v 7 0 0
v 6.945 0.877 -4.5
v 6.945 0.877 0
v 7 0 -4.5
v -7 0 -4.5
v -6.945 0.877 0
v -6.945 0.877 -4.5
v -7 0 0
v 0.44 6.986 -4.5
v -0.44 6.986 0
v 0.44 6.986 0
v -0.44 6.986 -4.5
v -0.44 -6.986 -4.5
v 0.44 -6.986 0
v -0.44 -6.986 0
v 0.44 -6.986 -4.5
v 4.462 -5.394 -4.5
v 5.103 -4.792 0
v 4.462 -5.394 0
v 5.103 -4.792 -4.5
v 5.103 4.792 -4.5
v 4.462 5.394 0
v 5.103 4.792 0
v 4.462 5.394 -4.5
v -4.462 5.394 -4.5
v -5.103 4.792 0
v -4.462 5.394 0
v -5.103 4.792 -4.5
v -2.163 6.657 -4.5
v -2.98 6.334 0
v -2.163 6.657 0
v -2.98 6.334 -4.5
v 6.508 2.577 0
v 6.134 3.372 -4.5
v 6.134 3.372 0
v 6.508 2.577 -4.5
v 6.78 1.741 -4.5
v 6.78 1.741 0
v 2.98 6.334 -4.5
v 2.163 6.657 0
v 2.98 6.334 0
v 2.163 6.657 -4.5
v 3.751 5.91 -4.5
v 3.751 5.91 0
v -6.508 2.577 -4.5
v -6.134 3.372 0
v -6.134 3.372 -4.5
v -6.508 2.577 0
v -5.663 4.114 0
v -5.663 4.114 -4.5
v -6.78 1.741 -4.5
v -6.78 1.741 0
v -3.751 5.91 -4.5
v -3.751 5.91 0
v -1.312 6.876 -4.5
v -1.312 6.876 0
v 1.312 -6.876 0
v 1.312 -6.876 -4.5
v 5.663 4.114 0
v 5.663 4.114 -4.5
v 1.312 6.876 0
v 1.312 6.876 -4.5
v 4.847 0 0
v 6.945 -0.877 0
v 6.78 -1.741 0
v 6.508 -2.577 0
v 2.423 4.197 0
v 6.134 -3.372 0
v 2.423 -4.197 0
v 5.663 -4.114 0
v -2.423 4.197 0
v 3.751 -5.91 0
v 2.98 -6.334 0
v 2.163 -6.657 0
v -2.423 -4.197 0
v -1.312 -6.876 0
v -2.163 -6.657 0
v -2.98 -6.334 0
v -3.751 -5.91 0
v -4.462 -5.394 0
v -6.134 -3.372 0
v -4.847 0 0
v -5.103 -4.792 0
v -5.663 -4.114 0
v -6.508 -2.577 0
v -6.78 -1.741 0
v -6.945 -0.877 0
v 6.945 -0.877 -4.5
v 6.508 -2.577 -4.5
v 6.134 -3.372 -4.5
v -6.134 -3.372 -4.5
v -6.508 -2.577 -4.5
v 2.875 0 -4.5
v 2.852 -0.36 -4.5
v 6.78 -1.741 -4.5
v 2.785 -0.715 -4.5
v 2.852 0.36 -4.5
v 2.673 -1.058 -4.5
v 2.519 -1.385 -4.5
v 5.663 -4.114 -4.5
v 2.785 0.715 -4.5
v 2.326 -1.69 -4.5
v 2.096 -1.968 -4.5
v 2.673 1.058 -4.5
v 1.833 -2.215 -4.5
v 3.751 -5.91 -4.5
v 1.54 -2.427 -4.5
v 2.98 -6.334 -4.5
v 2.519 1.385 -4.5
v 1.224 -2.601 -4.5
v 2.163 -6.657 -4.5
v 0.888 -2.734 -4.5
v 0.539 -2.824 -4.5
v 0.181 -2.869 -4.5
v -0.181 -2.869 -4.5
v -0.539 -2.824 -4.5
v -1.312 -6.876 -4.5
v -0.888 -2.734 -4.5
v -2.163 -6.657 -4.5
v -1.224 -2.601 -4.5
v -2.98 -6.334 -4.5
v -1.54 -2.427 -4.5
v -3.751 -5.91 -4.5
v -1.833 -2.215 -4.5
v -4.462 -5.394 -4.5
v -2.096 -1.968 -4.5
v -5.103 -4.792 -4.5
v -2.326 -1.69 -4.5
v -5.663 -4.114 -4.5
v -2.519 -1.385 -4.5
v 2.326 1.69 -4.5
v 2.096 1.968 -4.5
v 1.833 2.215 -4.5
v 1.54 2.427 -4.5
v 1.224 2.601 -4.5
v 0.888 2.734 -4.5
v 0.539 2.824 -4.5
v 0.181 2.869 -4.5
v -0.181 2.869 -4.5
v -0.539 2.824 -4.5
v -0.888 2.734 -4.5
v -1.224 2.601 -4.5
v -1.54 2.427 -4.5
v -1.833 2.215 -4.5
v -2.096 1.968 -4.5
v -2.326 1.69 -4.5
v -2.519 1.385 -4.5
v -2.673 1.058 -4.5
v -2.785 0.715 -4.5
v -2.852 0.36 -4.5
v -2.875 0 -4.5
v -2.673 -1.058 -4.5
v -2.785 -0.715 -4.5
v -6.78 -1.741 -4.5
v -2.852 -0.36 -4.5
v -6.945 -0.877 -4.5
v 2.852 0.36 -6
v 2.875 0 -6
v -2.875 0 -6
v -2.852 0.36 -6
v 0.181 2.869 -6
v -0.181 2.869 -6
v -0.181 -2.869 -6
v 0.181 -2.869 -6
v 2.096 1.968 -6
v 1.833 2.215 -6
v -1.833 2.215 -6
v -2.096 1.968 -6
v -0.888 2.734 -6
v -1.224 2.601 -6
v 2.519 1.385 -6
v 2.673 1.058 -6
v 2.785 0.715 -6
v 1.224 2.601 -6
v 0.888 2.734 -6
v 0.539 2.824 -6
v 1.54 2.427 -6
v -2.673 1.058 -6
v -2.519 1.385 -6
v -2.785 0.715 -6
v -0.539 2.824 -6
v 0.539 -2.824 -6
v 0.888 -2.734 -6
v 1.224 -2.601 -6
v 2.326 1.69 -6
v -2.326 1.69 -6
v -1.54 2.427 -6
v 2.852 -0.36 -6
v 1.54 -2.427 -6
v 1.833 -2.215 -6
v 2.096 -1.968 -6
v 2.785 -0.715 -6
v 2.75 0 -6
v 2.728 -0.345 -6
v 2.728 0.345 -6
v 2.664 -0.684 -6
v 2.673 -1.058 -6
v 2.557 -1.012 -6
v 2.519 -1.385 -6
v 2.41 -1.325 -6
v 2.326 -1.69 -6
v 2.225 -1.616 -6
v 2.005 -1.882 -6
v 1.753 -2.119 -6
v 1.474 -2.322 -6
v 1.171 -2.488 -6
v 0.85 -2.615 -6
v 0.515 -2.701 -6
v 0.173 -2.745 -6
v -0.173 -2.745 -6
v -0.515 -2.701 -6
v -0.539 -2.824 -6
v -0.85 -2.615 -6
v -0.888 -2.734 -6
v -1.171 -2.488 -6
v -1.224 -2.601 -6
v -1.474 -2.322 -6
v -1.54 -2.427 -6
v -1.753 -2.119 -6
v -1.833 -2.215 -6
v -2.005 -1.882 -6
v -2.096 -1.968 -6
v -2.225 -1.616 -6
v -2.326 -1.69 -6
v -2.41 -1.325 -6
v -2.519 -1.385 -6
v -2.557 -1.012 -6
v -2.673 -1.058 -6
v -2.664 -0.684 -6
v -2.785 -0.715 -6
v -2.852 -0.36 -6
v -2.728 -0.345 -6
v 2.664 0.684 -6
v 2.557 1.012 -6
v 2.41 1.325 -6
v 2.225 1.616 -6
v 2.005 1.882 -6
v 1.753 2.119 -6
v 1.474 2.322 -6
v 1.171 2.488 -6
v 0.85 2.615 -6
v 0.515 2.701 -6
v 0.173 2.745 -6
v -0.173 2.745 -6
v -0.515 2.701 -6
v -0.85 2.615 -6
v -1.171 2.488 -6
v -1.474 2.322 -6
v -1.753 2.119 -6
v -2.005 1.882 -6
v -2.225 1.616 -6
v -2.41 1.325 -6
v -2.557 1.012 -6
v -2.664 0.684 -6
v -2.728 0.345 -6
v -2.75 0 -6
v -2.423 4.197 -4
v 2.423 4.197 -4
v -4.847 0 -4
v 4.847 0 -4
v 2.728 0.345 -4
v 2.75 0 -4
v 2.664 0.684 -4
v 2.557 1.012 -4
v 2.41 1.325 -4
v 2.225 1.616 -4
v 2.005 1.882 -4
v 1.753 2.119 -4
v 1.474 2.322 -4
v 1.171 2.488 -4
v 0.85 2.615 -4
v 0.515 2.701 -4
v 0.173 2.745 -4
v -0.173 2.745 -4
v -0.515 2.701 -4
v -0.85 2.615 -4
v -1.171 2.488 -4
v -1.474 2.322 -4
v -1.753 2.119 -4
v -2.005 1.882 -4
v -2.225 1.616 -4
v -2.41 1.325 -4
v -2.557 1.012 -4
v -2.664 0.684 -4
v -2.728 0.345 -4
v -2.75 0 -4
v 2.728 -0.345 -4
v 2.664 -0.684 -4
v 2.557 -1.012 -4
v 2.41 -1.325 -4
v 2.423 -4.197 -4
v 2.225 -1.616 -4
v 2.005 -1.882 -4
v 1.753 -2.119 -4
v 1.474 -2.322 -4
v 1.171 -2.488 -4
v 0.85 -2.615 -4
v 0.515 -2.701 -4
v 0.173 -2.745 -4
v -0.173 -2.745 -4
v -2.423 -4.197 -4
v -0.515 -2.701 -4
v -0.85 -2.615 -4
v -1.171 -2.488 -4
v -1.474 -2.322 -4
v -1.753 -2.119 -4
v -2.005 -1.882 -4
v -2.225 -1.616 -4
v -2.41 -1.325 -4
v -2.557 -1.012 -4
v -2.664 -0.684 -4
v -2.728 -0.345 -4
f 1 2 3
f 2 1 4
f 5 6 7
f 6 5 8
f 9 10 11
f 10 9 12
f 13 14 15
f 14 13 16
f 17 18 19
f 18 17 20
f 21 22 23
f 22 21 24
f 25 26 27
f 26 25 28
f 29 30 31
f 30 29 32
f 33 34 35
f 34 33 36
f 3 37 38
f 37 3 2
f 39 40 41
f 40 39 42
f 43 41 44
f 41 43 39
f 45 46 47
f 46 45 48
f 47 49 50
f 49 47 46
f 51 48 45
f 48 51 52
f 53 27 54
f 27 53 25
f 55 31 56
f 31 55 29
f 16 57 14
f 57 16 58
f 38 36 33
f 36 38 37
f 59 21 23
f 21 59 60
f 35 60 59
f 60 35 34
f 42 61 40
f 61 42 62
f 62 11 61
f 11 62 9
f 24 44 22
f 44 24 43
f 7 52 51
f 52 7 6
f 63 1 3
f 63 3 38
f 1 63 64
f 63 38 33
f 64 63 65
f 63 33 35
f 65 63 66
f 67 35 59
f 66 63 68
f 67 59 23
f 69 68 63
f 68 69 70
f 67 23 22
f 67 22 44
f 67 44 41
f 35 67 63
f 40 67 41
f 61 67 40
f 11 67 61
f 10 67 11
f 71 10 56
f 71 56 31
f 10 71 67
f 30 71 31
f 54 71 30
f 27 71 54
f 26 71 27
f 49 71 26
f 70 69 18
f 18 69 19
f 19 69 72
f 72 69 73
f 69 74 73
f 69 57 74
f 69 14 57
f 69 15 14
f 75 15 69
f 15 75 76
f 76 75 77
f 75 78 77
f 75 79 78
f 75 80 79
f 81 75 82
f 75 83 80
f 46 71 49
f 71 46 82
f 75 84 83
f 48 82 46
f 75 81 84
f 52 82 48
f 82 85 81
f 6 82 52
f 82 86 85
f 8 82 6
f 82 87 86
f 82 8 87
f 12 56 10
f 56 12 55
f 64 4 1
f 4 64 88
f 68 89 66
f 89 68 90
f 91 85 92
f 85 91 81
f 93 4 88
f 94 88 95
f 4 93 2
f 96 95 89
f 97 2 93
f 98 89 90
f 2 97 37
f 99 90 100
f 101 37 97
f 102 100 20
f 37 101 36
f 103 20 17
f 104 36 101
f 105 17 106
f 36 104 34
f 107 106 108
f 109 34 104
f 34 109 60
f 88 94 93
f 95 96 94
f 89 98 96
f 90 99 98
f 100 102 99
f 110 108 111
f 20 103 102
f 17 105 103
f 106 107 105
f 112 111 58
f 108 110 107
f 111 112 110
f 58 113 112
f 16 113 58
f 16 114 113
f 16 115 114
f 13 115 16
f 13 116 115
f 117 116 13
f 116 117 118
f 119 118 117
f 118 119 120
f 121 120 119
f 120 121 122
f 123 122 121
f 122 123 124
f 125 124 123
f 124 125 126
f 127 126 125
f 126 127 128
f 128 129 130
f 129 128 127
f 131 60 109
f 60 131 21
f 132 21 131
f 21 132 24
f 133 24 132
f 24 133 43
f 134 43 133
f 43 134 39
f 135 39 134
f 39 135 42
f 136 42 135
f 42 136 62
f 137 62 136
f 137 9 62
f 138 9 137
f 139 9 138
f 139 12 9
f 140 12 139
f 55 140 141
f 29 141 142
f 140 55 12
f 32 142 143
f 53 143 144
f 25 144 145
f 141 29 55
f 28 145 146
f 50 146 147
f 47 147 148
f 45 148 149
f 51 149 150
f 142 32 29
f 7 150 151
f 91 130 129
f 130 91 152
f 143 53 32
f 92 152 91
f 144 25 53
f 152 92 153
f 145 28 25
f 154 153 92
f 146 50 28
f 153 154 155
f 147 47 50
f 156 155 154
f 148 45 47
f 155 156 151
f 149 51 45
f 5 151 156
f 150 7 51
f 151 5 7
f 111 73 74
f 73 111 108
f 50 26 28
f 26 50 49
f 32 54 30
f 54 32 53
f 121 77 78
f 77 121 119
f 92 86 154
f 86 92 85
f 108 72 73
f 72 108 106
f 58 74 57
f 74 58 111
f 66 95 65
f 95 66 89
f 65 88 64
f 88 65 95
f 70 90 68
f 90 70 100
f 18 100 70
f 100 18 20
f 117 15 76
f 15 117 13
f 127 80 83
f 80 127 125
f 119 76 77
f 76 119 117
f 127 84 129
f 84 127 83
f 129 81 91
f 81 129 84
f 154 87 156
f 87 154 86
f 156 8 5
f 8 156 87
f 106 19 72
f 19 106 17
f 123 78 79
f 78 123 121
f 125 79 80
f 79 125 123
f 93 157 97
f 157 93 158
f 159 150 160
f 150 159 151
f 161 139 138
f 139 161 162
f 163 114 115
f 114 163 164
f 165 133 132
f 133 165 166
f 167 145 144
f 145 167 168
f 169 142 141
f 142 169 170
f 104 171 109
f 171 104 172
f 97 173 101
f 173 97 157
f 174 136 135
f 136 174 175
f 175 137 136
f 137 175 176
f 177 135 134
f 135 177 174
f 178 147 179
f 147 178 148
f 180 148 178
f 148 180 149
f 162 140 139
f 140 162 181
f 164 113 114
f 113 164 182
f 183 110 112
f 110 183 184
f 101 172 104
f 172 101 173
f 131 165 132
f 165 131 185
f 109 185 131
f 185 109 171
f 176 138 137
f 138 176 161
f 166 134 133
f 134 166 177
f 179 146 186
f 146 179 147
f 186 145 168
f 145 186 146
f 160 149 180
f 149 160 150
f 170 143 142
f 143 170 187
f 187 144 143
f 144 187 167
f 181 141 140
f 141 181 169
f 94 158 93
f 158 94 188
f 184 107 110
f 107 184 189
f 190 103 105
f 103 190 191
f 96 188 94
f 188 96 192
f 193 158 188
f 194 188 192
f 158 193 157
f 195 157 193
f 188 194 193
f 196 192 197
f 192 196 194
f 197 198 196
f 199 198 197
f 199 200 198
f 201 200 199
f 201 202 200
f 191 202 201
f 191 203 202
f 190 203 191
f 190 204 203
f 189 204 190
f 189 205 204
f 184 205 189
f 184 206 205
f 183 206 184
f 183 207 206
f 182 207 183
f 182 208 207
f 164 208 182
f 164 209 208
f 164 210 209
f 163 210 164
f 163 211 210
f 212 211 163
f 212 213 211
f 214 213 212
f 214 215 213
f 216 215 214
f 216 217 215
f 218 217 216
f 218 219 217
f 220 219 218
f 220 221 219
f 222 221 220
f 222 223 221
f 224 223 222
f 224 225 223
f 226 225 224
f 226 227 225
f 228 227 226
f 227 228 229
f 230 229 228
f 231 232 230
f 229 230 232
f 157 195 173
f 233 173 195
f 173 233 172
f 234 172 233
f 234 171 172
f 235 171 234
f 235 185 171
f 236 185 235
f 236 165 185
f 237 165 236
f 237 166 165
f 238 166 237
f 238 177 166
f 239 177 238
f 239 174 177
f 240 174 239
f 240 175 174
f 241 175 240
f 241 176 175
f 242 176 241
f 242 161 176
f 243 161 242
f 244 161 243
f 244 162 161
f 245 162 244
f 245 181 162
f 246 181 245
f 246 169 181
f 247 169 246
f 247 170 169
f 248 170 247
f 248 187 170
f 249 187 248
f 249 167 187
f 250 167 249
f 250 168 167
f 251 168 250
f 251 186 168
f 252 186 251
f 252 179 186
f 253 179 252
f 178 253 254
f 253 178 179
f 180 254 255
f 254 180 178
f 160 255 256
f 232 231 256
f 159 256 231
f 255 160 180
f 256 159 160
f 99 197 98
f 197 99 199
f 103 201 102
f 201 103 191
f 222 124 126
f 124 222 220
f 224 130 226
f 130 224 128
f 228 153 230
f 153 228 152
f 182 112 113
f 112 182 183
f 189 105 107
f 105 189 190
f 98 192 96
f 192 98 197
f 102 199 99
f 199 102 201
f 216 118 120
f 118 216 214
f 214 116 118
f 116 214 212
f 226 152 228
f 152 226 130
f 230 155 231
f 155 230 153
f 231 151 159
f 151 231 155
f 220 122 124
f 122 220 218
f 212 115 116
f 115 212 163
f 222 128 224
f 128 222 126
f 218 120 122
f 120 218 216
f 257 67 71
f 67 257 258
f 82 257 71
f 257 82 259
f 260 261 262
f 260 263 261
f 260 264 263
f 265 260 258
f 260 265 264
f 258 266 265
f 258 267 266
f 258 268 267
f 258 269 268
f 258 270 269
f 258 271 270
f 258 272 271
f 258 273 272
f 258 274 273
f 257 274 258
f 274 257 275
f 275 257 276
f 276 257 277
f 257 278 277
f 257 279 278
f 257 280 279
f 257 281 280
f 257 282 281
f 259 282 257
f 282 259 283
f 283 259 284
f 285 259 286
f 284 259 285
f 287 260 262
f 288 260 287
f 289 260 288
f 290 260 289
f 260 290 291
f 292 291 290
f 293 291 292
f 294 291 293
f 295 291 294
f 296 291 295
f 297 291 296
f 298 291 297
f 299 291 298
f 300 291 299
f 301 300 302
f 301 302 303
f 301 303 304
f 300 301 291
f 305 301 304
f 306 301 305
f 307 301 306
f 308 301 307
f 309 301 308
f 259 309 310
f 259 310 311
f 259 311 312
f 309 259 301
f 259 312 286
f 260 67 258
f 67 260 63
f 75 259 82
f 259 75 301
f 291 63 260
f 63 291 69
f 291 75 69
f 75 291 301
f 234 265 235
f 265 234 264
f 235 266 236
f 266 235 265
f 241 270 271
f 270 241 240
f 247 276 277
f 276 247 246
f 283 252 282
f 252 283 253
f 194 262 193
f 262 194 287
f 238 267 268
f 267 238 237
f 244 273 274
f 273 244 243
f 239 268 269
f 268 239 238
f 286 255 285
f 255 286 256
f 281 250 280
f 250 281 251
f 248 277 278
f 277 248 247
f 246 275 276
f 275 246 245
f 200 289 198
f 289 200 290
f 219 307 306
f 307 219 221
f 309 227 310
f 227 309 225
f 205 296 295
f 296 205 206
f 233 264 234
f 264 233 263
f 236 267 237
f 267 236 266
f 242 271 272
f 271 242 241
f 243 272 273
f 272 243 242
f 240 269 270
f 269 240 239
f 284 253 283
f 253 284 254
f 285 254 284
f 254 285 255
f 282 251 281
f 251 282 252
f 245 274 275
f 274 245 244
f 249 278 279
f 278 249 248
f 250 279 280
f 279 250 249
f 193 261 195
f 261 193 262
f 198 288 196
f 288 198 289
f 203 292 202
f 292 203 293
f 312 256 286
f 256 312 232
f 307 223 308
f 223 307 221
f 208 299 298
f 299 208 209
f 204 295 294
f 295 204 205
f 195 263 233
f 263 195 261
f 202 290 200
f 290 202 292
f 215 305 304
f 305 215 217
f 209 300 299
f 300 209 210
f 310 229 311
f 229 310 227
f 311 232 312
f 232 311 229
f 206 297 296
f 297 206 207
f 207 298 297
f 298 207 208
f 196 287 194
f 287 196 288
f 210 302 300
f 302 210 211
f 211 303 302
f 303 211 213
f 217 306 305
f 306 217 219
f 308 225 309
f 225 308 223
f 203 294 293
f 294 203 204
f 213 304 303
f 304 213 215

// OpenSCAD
$fn = 50;


difference() {
	union() {
		translate(v = [0, 0, -4.5000000000]) {
			cylinder(h = 4.5000000000, r = 7.0000000000);
		}
		translate(v = [0, 0, -6.0000000000]) {
			cylinder(h = 6, r = 2.8750000000);
		}
	}
	union() {
		translate(v = [0, 0, 0]) {
			rotate(a = [0, 0, 0]) {
				difference() {
					union() {
						translate(v = [0, 0, -4]) {
							linear_extrude(height = 4) {
								polygon(points = [[4.8468000000, 0.0000000000], [2.4234000000, 4.1974519271], [-2.4234000000, 4.1974519271], [-4.8468000000, 0.0000000000], [-2.4234000000, -4.1974519271], [2.4234000000, -4.1974519271]]);
							}
						}
					}
					union();
				}
			}
		}
		#translate(v = [0, 0, -100.0000000000]) {
			cylinder(h = 200, r = 2.7500000000);
		}
	}
}
